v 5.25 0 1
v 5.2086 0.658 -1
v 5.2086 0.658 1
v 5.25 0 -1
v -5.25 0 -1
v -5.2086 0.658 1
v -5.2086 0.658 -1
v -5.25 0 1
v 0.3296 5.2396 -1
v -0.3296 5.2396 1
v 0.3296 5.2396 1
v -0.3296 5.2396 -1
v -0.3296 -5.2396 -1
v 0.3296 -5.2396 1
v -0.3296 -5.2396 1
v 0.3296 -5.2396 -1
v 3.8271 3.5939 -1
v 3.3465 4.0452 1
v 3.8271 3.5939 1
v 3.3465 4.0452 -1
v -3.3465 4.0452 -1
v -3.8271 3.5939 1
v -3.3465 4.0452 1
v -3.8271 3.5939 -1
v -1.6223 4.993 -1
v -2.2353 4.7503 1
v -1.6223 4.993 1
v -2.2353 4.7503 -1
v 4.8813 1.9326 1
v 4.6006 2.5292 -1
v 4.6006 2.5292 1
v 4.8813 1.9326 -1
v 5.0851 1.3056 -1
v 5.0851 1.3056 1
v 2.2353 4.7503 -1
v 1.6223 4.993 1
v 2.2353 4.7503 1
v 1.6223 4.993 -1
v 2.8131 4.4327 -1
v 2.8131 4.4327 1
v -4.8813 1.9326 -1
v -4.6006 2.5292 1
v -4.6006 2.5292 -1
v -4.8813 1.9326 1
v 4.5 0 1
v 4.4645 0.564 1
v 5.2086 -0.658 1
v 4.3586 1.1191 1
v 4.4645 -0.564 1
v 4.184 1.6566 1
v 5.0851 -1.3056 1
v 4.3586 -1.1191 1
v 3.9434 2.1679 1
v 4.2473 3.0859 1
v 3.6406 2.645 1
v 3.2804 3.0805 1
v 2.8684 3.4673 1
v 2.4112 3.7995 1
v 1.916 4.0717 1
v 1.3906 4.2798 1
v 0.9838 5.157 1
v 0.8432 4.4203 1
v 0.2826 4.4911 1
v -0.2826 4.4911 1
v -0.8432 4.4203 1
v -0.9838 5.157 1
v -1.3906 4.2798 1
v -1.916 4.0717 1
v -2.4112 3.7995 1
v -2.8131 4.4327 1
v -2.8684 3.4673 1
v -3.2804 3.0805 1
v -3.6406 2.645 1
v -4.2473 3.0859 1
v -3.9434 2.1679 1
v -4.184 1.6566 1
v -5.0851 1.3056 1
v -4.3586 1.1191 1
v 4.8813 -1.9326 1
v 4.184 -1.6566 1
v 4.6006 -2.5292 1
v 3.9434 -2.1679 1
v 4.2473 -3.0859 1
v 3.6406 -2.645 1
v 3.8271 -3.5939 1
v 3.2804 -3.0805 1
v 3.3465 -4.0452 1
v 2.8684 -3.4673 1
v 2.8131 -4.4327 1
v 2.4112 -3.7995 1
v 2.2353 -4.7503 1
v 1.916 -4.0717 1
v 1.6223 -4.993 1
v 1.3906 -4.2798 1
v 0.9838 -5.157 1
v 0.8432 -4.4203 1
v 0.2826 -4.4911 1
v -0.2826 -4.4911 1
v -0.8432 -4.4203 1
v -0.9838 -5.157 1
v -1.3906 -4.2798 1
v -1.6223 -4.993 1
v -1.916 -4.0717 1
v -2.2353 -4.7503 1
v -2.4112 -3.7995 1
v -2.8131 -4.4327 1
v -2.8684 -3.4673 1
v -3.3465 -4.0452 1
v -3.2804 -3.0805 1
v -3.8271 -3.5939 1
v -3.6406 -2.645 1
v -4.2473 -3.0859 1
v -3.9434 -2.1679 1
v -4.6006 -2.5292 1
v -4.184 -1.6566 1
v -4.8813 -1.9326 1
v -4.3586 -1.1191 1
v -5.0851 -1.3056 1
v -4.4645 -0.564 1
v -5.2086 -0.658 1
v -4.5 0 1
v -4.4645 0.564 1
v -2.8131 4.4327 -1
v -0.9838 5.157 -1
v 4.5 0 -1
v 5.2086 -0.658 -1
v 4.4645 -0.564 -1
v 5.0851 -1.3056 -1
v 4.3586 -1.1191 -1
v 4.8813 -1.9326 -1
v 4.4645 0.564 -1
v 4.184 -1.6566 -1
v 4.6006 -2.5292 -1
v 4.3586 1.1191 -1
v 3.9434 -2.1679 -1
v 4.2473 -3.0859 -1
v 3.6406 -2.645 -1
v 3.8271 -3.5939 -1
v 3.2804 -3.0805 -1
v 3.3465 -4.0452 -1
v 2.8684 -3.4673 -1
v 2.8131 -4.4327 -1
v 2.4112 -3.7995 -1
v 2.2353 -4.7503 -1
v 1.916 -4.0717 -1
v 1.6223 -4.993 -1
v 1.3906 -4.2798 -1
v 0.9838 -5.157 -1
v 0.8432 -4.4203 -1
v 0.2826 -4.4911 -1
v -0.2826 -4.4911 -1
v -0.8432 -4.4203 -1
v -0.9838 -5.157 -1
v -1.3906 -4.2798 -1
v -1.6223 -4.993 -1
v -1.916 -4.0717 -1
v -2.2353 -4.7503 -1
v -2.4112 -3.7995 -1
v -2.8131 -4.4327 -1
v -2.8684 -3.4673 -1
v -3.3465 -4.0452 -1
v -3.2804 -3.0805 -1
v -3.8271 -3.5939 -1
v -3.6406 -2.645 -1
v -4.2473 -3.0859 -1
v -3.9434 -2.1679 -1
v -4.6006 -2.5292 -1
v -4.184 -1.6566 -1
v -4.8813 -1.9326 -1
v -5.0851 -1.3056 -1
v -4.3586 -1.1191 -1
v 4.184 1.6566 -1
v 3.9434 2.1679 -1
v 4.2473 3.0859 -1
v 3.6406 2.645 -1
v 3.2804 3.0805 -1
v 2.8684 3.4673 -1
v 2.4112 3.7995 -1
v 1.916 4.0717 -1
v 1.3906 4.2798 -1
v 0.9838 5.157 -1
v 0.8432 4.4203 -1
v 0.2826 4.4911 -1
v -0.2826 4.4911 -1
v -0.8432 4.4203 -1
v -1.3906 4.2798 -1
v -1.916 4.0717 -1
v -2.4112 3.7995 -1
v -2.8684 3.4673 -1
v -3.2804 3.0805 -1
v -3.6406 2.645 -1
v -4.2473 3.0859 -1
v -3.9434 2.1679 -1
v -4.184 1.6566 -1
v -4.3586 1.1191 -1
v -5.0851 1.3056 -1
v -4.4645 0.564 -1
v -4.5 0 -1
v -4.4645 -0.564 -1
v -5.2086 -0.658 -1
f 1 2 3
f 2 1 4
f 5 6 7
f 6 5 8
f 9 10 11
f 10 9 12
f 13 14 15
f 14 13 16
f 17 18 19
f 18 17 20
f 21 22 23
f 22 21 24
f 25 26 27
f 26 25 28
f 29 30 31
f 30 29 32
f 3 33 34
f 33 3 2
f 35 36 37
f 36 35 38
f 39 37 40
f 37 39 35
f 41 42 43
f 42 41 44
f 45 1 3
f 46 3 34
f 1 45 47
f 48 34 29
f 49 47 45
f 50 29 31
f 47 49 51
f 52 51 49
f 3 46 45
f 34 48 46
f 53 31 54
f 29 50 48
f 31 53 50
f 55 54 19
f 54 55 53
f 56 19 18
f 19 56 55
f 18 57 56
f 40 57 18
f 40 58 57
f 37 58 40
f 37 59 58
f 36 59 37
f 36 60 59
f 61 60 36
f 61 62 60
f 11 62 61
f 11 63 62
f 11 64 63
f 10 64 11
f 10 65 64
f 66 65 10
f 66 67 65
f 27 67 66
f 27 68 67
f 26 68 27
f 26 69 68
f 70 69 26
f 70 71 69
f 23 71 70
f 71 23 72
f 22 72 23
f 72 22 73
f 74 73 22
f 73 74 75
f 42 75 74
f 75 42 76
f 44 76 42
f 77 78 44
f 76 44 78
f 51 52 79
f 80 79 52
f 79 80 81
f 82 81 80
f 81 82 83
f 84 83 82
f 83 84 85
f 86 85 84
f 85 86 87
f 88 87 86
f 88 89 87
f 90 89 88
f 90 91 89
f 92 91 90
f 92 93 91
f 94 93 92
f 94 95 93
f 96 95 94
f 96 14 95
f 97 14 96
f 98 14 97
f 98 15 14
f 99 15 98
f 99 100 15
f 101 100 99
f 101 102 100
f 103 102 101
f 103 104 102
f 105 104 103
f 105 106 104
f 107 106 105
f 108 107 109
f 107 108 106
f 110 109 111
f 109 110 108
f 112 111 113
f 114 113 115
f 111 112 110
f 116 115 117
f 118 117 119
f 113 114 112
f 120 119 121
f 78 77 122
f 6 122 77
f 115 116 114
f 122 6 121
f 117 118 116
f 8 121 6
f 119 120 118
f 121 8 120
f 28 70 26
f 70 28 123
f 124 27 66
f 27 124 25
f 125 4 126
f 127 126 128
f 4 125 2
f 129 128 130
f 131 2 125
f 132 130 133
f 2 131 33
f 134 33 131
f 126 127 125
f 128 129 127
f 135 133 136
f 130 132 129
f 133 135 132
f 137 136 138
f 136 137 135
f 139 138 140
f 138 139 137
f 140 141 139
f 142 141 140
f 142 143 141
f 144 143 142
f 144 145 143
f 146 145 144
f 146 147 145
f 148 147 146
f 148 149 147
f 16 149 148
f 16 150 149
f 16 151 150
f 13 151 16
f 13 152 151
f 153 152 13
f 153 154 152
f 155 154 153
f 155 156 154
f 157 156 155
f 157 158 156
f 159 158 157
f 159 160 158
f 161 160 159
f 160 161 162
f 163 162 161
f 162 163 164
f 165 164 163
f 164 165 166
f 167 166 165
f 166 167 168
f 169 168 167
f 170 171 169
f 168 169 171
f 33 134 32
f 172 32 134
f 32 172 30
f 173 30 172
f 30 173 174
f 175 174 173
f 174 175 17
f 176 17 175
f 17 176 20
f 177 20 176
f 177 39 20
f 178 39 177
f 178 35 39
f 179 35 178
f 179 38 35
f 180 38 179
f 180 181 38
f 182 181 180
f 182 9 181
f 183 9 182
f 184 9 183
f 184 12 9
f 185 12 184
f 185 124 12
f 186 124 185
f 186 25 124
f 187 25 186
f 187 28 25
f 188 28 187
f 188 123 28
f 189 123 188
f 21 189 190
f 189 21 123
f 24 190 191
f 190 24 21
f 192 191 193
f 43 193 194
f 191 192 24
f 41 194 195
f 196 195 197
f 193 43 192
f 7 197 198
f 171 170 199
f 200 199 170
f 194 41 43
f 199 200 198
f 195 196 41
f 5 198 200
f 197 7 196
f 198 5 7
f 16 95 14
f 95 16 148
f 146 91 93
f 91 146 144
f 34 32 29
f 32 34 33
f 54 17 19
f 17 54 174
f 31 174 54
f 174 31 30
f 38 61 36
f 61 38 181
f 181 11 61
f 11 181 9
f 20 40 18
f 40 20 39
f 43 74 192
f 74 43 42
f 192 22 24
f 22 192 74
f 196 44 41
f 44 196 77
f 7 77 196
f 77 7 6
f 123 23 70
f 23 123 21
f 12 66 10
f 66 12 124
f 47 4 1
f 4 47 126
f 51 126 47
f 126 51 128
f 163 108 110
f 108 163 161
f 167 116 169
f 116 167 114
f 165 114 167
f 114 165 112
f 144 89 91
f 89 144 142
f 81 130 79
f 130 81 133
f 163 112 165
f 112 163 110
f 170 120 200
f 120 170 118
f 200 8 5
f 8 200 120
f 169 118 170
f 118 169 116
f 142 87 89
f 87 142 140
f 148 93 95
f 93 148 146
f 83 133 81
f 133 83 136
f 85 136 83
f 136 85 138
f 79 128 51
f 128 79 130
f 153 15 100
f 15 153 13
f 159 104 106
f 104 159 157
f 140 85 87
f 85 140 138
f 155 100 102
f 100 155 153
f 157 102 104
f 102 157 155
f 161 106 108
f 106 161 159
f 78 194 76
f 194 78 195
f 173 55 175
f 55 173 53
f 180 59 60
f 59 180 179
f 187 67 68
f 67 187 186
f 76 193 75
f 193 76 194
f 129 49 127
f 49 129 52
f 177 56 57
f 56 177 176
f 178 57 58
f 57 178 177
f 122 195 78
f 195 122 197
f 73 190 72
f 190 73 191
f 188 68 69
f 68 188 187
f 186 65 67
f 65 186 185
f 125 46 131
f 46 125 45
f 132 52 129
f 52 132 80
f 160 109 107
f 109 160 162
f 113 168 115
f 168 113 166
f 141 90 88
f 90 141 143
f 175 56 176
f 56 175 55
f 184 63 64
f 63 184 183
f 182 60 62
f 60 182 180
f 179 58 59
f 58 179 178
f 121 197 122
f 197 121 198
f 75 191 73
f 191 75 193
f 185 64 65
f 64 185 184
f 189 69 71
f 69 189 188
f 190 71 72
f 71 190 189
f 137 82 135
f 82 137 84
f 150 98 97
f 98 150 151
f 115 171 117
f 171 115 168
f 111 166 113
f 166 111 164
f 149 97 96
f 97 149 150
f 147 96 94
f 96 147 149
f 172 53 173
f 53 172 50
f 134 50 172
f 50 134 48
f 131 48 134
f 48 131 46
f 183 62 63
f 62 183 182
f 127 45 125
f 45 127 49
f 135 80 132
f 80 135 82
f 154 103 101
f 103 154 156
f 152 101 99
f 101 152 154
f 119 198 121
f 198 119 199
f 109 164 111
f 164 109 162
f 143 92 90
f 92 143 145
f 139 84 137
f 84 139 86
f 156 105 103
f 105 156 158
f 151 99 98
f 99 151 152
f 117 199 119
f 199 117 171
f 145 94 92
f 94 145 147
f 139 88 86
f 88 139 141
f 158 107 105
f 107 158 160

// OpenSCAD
$fn = 50;


difference() {
	union() {
		translate(v = [0, 0, -1.0000000000]) {
			cylinder(h = 2, r = 5.2500000000);
		}
	}
	union() {
		translate(v = [0, 0, -100.0000000000]) {
			cylinder(h = 200, r = 4.5000000000);
		}
	}
}
